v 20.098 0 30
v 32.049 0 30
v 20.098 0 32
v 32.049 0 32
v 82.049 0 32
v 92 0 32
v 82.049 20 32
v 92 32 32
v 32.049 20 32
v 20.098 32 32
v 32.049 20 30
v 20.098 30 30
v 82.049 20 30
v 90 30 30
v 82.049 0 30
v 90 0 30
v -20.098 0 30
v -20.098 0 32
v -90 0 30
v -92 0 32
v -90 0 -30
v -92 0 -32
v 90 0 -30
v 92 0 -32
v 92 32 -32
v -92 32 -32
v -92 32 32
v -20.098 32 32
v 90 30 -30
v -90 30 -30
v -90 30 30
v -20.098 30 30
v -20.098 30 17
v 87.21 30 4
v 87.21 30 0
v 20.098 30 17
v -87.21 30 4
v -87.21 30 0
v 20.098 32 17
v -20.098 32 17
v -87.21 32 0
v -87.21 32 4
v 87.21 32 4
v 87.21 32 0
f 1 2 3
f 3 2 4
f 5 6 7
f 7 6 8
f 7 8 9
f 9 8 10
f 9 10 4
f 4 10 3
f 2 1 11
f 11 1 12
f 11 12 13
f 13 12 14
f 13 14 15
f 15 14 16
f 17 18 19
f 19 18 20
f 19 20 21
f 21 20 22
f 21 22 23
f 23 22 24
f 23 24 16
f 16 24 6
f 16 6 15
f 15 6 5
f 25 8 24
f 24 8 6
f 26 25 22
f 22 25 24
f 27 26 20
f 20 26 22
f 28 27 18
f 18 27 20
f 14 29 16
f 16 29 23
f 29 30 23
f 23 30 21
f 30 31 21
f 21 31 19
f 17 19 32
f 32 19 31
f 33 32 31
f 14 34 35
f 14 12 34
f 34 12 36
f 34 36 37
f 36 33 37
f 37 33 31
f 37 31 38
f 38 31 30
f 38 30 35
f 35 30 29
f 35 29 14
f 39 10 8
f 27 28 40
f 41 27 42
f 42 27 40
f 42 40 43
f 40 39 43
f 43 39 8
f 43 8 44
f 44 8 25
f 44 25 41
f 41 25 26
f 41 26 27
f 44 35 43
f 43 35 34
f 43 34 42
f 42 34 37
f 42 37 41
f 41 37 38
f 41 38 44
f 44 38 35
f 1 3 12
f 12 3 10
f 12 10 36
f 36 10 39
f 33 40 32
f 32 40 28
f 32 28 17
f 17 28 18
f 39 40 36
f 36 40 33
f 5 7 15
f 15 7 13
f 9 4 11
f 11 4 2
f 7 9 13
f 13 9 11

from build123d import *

# Parameters (mm, degrees)
SKETCH1_W                       = 184
SKETCH1_H                       = 64
SKETCH1_W_2                     = 180
SKETCH1_H_2                     = 60
EXTRUDE_THIN1_DEPTH             = 30
SKETCH3_W                       = 184
SKETCH3_H                       = 64
BOSS_EXTRUDE1_DEPTH             = 2
SKETCH4_W                       = 174.419493498
SKETCH4_H                       = 4
CUT_EXTRUDE1_DEPTH              = 5
SKETCH5_W                       = 40.195784268
SKETCH5_H                       = 59.069599678
CUT_EXTRUDE2_DEPTH              = 15
SKETCH6_W                       = 44.195784268
SKETCH6_H                       = 67.776893145
SKETCH6_W_2                     = 40.195784268
SKETCH6_H_2                     = 63.776893145
EXTRUDE_THIN2_DEPTH             = 35
EXTRUDE_THIN2_DIRECTION_2_REACH = 118.55
SKETCH7_W                       = 128.018506196
SKETCH7_H                       = 58.604777903
CUT_EXTRUDE3_DEPTH              = 85
SKETCH8_W                       = 13
SKETCH8_H                       = 30
CUT_EXTRUDE4_DEPTH              = 85
SKETCH9_W                       = 44.195784268
SKETCH9_H                       = 65.776893145
BOSS_EXTRUDE2_DEPTH             = 2
SKETCH13_W                      = 20.06
SKETCH13_H                      = 40.06
CUT_EXTRUDE6_DEPTH              = 10
SKETCH18_R                      = 2.03
CUT_EXTRUDE8_DEPTH              = 10
SKETCH19_W                      = 50
SKETCH19_H                      = 40
CUT_EXTRUDE9_DEPTH              = 10
SKETCH20_R                      = 2.03
CUT_EXTRUDE10_DEPTH             = 10
SKETCH21_W                      = 37
SKETCH21_H                      = 32
CUT_EXTRUDE11_DEPTH             = 217


with BuildPart() as part:
    # Sketch1 → Extrude-Thin1 (new body)
    with BuildSketch(Plane(origin=(0, 0, 0), x_dir=(1, 0, 0), z_dir=(0, 1, 0))):
        Rectangle(SKETCH1_W, SKETCH1_H)
        Rectangle(SKETCH1_W_2, SKETCH1_H_2, mode=Mode.SUBTRACT)
    extrude(amount=EXTRUDE_THIN1_DEPTH)

    # Sketch3 → Boss-Extrude1 (add)
    with BuildSketch(Plane(origin=(0, 30, 0), x_dir=(1, 0, 0), z_dir=(0, 1, 0))):
        Rectangle(SKETCH3_W, SKETCH3_H)
    extrude(amount=BOSS_EXTRUDE1_DEPTH)

    # Sketch4 → Cut-Extrude1 (cut)
    with BuildSketch(Plane(origin=(0, 32, 0), x_dir=(1, 0, 0), z_dir=(0, 1, 0))):
        with Locations((0, -2)):
            Rectangle(SKETCH4_W, SKETCH4_H)
    extrude(amount=-CUT_EXTRUDE1_DEPTH, mode=Mode.SUBTRACT)

    # Sketch5 → Cut-Extrude2 (cut)
    with BuildSketch(Plane.XY.offset(32)):
        with Locations((0, 16)):
            Rectangle(SKETCH5_W, SKETCH5_H)
    extrude(amount=-CUT_EXTRUDE2_DEPTH, mode=Mode.SUBTRACT)

    # Sketch6 → Extrude-Thin2 (add)
    with BuildSketch(Plane.XY.offset(32)):
        with Locations((0, 31.888446573)):
            Rectangle(SKETCH6_W, SKETCH6_H)
        with Locations((0, 31.888446573)):
            Rectangle(SKETCH6_W_2, SKETCH6_H_2, mode=Mode.SUBTRACT)
    extrude(amount=EXTRUDE_THIN2_DEPTH)

    # Extrude-Thin2 direction 2: up to this face of the body (flat: up to its plane)
    extrude_thin2_direction_2_end = Plane(part.part.faces().sort_by_distance((0, 31, 17))[0])
    # Sketch6 → Extrude-Thin2 direction 2 (add, up to the picked face)
    with BuildSketch(Plane.XY.offset(32), mode=Mode.PRIVATE) as extrude_thin2_direction_2_sk1:
        with Locations((0, 31.888446573)):
            Rectangle(SKETCH6_W, SKETCH6_H)
        with Locations((0, 31.888446573)):
            Rectangle(SKETCH6_W_2, SKETCH6_H_2, mode=Mode.SUBTRACT)
    extrude_thin2_direction_2_tool1 = split(extrude(extrude_thin2_direction_2_sk1.sketch, amount=-EXTRUDE_THIN2_DIRECTION_2_REACH, mode=Mode.PRIVATE), bisect_by=extrude_thin2_direction_2_end, keep=Keep.BOTH, mode=Mode.PRIVATE)
    add(extrude_thin2_direction_2_tool1.solids().sort_by(Axis((0, -1.190866, 32), (0, 0, -1)))[0])

    # Sketch7 → Cut-Extrude3 (cut)
    with BuildSketch(Plane.XZ):
        with Locations((2.364457898, 44.353486129)):
            Rectangle(SKETCH7_W, SKETCH7_H)
    extrude(amount=CUT_EXTRUDE3_DEPTH, mode=Mode.SUBTRACT)

    # Sketch8 → Cut-Extrude4 (cut)
    with BuildSketch(Plane.ZY.offset(22.097892134)):
        with Locations((23.5, 15)):
            Rectangle(SKETCH8_W, SKETCH8_H)
    extrude(amount=-CUT_EXTRUDE4_DEPTH, mode=Mode.SUBTRACT)

    # Sketch9 → Boss-Extrude2 (add)
    with BuildSketch(Plane.XY.offset(67)):
        with Locations((0, 32.888446573)):
            Rectangle(SKETCH9_W, SKETCH9_H)
    extrude(amount=BOSS_EXTRUDE2_DEPTH)

    # Sketch13 → Cut-Extrude6 (cut)
    with BuildSketch(Plane.XY.offset(69)):
        with Locations((0, 30.776893145)):
            Rectangle(SKETCH13_W, SKETCH13_H)
    extrude(amount=-CUT_EXTRUDE6_DEPTH, mode=Mode.SUBTRACT)

    # Sketch18 → Cut-Extrude8 (cut)
    with BuildSketch(Plane.XY.offset(69)):
        with Locations((-5, 6.246893145)):
            Circle(SKETCH18_R)
        with Locations((5, 6.246893145)):
            Circle(SKETCH18_R)
    extrude(amount=-CUT_EXTRUDE8_DEPTH, mode=Mode.SUBTRACT)

    # Sketch19 → Cut-Extrude9 (cut)
    with BuildSketch(Plane.XY.offset(32)):
        with Locations((57.048946067, 0)):
            Rectangle(SKETCH19_W, SKETCH19_H)
    extrude(amount=-CUT_EXTRUDE9_DEPTH, mode=Mode.SUBTRACT)

    # Sketch20 → Cut-Extrude10 (cut)
    with BuildSketch(Plane.XY.offset(69)):
        with Locations((-5, 55.306893145)):
            Circle(SKETCH20_R)
        with Locations((5, 55.306893145)):
            Circle(SKETCH20_R)
    extrude(amount=-CUT_EXTRUDE10_DEPTH, mode=Mode.SUBTRACT)

    # Sketch21 → Cut-Extrude11 (cut)
    with BuildSketch(Plane.ZY.offset(22.097892134)):
        Polygon((72.732917278, 32), (69, 32), (69, 0), (32, 0), (32, -6.74330067), (76.348445097, -6.74330067), (76.348445097, 32), align=None)
        with Locations((50.5, 16)):
            Rectangle(SKETCH21_W, SKETCH21_H)
        Polygon((17, 65.776893145), (17, 32), (32, 32), (69, 32), (69, 65.776893145), align=None)
    extrude(amount=-CUT_EXTRUDE11_DEPTH, mode=Mode.SUBTRACT)


solid = part.part
